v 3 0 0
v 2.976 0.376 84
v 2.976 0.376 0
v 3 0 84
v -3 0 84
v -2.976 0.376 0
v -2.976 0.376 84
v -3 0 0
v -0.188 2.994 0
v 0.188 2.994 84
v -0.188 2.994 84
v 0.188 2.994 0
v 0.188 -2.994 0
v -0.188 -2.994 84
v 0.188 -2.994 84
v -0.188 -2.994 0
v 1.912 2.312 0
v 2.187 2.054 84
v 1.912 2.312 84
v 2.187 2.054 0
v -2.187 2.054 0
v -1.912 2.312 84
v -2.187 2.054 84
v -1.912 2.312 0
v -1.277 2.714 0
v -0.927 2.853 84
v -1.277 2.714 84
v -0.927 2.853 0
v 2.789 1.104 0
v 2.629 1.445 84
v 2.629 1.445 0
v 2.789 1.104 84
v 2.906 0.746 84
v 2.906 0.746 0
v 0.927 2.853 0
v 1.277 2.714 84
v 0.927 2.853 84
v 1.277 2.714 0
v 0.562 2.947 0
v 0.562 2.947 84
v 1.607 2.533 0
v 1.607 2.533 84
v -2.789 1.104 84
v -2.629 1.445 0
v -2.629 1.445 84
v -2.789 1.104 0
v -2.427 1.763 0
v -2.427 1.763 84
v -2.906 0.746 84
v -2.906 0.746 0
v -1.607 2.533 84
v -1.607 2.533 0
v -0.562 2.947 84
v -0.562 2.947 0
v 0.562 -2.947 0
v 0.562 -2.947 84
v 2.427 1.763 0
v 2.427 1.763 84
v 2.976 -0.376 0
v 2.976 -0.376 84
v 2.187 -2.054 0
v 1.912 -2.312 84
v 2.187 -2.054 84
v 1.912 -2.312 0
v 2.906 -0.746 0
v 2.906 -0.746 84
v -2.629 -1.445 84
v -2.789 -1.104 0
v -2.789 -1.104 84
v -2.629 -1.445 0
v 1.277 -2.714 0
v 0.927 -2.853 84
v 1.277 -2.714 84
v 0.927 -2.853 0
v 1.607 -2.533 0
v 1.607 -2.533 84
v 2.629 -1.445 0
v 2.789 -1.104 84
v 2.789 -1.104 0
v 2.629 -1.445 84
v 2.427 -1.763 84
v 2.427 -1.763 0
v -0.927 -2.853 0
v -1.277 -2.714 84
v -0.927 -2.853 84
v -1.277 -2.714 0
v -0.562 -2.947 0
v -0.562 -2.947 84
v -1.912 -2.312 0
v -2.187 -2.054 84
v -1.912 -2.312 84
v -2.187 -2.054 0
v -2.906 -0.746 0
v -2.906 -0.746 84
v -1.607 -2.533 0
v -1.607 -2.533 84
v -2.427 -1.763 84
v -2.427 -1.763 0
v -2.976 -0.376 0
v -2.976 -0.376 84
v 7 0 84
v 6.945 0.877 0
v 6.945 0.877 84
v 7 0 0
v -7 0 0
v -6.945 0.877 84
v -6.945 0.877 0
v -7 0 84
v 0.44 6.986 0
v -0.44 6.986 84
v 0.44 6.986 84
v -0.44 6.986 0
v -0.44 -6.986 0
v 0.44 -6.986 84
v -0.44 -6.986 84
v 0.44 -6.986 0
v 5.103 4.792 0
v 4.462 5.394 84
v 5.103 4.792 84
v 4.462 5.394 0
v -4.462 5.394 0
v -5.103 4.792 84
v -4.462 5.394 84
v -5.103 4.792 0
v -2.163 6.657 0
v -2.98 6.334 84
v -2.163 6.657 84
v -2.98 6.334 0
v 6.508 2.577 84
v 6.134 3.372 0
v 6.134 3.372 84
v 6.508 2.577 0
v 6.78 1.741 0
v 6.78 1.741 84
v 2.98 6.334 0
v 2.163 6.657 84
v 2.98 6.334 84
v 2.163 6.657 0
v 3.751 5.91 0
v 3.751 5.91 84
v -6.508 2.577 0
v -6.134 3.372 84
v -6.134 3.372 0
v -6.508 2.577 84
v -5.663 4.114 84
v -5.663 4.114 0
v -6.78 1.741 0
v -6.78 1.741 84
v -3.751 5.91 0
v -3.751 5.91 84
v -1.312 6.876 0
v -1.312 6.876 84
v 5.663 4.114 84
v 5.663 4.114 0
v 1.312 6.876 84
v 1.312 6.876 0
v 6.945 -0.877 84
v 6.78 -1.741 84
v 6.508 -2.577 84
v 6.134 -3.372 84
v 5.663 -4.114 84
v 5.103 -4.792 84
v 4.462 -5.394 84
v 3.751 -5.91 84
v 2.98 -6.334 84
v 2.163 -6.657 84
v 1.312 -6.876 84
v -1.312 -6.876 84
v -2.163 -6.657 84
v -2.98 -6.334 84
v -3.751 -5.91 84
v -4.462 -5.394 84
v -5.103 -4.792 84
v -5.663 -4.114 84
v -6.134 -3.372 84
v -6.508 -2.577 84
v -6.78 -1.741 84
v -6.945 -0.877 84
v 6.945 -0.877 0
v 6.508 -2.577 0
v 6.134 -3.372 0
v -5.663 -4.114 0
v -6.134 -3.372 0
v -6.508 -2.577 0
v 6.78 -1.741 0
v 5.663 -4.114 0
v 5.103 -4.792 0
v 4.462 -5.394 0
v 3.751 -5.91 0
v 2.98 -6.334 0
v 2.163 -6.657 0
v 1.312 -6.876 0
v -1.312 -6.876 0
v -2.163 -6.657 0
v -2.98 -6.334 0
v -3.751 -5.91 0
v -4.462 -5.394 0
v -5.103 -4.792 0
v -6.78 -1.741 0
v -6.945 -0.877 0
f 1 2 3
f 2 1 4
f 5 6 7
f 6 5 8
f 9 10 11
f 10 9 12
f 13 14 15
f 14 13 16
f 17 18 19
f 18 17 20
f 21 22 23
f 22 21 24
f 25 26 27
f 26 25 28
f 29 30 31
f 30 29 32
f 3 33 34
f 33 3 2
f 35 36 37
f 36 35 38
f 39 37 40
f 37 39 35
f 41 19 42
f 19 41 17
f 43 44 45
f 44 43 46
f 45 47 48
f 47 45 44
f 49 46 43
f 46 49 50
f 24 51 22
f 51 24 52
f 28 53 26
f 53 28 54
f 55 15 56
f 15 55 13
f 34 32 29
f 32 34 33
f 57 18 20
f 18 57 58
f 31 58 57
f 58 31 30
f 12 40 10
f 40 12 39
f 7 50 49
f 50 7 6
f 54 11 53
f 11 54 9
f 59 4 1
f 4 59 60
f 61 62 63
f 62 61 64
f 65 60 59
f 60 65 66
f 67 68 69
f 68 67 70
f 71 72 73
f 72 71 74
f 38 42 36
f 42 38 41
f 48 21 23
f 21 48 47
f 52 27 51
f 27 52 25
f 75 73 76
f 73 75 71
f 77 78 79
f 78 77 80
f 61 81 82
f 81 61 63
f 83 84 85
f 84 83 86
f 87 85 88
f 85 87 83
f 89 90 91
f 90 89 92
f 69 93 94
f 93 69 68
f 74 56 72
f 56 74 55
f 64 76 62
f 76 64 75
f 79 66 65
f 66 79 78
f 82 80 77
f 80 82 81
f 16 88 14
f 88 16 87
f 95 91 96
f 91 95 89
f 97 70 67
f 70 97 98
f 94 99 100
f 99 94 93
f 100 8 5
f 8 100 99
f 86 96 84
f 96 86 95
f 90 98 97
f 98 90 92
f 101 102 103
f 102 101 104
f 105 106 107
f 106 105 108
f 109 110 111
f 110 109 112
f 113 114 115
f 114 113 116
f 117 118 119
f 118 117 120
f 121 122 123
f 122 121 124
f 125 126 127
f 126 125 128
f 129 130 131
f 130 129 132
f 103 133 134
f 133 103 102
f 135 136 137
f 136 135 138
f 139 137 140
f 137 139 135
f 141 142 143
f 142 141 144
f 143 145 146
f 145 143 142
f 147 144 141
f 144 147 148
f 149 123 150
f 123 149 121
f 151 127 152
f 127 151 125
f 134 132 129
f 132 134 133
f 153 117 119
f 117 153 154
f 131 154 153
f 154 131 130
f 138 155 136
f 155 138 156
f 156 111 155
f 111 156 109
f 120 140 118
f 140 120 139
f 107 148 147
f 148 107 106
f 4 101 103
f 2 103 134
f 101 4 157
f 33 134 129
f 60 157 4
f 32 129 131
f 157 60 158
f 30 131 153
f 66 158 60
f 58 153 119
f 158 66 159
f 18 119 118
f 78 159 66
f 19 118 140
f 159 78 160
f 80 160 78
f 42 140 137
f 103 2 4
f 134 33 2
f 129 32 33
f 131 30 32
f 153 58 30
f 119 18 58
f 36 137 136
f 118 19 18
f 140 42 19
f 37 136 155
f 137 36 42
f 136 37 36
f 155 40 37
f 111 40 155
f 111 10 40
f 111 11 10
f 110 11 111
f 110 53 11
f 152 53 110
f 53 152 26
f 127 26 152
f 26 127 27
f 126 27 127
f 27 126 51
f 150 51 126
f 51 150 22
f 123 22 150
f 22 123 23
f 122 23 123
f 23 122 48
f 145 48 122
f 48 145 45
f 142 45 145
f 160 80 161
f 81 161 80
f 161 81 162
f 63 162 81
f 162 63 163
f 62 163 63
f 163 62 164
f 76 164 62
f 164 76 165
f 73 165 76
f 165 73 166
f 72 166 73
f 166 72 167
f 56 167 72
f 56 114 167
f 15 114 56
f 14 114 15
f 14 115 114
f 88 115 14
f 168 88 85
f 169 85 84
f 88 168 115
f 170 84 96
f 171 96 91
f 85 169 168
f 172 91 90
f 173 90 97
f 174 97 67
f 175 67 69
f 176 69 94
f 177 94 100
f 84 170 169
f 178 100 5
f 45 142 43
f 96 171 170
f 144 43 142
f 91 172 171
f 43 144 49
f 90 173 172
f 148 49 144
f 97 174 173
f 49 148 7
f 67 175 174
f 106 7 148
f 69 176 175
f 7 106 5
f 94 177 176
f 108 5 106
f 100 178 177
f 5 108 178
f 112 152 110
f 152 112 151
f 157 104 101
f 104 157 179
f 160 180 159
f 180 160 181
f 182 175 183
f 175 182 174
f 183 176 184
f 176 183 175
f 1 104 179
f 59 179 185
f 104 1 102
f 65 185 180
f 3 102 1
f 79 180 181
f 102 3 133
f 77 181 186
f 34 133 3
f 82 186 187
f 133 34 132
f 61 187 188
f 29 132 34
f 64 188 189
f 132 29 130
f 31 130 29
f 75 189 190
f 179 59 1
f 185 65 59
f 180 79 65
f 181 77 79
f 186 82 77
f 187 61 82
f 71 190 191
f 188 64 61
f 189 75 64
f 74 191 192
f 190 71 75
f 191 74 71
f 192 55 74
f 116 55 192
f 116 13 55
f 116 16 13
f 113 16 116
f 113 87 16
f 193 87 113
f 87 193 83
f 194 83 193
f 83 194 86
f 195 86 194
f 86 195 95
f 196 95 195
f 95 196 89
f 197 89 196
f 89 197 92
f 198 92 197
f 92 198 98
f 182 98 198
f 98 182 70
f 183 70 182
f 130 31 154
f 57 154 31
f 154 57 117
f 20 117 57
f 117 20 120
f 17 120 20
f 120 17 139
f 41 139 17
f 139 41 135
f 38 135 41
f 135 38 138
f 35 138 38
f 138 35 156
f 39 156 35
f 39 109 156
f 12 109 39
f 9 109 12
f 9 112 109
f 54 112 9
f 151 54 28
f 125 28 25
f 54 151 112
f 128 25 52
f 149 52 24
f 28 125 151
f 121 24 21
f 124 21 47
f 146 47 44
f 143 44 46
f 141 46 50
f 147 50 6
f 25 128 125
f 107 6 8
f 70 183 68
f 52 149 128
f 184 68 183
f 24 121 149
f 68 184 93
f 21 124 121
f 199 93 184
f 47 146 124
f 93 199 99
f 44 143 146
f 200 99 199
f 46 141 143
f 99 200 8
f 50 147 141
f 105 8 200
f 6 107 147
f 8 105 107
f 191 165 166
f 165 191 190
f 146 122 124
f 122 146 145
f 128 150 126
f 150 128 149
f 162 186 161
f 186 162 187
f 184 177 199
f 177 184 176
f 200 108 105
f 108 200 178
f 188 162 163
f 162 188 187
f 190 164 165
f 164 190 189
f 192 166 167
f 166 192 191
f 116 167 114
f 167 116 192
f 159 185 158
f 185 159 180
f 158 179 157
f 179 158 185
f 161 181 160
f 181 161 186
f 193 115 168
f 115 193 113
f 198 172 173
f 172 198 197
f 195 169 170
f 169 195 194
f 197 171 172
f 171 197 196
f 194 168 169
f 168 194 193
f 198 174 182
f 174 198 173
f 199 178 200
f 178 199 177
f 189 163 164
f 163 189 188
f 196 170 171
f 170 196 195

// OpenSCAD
$fn = 50;


difference() {
	union() {
		*color(alpha = 1.0000000000, c = "gray") {
			translate(v = [0, 7, 0]) {
				linear_extrude(height = 1) {
					text(font = "Arial:style=Bold", halign = "center", size = 4.5000000000, text = "COMMENT plate main", valign = "center");
				}
			}
		}
		cylinder(h = 84, r = 7.0000000000);
	}
	union() {
		*color(alpha = 1.0000000000, c = "gray") {
			translate(v = [0, 7, 0]) {
				linear_extrude(height = 1) {
					text(font = "Arial:style=Bold", halign = "center", size = 4.5000000000, text = "COMMENT holes main", valign = "center");
				}
			}
		}
		translate(v = [0, 0, -100]) {
			cylinder(h = 200, r = 3.0000000000);
		}
		translate(v = [0, 0, -100]) {
			cylinder(h = 200, r = 1.5000000000);
		}
	}
}
